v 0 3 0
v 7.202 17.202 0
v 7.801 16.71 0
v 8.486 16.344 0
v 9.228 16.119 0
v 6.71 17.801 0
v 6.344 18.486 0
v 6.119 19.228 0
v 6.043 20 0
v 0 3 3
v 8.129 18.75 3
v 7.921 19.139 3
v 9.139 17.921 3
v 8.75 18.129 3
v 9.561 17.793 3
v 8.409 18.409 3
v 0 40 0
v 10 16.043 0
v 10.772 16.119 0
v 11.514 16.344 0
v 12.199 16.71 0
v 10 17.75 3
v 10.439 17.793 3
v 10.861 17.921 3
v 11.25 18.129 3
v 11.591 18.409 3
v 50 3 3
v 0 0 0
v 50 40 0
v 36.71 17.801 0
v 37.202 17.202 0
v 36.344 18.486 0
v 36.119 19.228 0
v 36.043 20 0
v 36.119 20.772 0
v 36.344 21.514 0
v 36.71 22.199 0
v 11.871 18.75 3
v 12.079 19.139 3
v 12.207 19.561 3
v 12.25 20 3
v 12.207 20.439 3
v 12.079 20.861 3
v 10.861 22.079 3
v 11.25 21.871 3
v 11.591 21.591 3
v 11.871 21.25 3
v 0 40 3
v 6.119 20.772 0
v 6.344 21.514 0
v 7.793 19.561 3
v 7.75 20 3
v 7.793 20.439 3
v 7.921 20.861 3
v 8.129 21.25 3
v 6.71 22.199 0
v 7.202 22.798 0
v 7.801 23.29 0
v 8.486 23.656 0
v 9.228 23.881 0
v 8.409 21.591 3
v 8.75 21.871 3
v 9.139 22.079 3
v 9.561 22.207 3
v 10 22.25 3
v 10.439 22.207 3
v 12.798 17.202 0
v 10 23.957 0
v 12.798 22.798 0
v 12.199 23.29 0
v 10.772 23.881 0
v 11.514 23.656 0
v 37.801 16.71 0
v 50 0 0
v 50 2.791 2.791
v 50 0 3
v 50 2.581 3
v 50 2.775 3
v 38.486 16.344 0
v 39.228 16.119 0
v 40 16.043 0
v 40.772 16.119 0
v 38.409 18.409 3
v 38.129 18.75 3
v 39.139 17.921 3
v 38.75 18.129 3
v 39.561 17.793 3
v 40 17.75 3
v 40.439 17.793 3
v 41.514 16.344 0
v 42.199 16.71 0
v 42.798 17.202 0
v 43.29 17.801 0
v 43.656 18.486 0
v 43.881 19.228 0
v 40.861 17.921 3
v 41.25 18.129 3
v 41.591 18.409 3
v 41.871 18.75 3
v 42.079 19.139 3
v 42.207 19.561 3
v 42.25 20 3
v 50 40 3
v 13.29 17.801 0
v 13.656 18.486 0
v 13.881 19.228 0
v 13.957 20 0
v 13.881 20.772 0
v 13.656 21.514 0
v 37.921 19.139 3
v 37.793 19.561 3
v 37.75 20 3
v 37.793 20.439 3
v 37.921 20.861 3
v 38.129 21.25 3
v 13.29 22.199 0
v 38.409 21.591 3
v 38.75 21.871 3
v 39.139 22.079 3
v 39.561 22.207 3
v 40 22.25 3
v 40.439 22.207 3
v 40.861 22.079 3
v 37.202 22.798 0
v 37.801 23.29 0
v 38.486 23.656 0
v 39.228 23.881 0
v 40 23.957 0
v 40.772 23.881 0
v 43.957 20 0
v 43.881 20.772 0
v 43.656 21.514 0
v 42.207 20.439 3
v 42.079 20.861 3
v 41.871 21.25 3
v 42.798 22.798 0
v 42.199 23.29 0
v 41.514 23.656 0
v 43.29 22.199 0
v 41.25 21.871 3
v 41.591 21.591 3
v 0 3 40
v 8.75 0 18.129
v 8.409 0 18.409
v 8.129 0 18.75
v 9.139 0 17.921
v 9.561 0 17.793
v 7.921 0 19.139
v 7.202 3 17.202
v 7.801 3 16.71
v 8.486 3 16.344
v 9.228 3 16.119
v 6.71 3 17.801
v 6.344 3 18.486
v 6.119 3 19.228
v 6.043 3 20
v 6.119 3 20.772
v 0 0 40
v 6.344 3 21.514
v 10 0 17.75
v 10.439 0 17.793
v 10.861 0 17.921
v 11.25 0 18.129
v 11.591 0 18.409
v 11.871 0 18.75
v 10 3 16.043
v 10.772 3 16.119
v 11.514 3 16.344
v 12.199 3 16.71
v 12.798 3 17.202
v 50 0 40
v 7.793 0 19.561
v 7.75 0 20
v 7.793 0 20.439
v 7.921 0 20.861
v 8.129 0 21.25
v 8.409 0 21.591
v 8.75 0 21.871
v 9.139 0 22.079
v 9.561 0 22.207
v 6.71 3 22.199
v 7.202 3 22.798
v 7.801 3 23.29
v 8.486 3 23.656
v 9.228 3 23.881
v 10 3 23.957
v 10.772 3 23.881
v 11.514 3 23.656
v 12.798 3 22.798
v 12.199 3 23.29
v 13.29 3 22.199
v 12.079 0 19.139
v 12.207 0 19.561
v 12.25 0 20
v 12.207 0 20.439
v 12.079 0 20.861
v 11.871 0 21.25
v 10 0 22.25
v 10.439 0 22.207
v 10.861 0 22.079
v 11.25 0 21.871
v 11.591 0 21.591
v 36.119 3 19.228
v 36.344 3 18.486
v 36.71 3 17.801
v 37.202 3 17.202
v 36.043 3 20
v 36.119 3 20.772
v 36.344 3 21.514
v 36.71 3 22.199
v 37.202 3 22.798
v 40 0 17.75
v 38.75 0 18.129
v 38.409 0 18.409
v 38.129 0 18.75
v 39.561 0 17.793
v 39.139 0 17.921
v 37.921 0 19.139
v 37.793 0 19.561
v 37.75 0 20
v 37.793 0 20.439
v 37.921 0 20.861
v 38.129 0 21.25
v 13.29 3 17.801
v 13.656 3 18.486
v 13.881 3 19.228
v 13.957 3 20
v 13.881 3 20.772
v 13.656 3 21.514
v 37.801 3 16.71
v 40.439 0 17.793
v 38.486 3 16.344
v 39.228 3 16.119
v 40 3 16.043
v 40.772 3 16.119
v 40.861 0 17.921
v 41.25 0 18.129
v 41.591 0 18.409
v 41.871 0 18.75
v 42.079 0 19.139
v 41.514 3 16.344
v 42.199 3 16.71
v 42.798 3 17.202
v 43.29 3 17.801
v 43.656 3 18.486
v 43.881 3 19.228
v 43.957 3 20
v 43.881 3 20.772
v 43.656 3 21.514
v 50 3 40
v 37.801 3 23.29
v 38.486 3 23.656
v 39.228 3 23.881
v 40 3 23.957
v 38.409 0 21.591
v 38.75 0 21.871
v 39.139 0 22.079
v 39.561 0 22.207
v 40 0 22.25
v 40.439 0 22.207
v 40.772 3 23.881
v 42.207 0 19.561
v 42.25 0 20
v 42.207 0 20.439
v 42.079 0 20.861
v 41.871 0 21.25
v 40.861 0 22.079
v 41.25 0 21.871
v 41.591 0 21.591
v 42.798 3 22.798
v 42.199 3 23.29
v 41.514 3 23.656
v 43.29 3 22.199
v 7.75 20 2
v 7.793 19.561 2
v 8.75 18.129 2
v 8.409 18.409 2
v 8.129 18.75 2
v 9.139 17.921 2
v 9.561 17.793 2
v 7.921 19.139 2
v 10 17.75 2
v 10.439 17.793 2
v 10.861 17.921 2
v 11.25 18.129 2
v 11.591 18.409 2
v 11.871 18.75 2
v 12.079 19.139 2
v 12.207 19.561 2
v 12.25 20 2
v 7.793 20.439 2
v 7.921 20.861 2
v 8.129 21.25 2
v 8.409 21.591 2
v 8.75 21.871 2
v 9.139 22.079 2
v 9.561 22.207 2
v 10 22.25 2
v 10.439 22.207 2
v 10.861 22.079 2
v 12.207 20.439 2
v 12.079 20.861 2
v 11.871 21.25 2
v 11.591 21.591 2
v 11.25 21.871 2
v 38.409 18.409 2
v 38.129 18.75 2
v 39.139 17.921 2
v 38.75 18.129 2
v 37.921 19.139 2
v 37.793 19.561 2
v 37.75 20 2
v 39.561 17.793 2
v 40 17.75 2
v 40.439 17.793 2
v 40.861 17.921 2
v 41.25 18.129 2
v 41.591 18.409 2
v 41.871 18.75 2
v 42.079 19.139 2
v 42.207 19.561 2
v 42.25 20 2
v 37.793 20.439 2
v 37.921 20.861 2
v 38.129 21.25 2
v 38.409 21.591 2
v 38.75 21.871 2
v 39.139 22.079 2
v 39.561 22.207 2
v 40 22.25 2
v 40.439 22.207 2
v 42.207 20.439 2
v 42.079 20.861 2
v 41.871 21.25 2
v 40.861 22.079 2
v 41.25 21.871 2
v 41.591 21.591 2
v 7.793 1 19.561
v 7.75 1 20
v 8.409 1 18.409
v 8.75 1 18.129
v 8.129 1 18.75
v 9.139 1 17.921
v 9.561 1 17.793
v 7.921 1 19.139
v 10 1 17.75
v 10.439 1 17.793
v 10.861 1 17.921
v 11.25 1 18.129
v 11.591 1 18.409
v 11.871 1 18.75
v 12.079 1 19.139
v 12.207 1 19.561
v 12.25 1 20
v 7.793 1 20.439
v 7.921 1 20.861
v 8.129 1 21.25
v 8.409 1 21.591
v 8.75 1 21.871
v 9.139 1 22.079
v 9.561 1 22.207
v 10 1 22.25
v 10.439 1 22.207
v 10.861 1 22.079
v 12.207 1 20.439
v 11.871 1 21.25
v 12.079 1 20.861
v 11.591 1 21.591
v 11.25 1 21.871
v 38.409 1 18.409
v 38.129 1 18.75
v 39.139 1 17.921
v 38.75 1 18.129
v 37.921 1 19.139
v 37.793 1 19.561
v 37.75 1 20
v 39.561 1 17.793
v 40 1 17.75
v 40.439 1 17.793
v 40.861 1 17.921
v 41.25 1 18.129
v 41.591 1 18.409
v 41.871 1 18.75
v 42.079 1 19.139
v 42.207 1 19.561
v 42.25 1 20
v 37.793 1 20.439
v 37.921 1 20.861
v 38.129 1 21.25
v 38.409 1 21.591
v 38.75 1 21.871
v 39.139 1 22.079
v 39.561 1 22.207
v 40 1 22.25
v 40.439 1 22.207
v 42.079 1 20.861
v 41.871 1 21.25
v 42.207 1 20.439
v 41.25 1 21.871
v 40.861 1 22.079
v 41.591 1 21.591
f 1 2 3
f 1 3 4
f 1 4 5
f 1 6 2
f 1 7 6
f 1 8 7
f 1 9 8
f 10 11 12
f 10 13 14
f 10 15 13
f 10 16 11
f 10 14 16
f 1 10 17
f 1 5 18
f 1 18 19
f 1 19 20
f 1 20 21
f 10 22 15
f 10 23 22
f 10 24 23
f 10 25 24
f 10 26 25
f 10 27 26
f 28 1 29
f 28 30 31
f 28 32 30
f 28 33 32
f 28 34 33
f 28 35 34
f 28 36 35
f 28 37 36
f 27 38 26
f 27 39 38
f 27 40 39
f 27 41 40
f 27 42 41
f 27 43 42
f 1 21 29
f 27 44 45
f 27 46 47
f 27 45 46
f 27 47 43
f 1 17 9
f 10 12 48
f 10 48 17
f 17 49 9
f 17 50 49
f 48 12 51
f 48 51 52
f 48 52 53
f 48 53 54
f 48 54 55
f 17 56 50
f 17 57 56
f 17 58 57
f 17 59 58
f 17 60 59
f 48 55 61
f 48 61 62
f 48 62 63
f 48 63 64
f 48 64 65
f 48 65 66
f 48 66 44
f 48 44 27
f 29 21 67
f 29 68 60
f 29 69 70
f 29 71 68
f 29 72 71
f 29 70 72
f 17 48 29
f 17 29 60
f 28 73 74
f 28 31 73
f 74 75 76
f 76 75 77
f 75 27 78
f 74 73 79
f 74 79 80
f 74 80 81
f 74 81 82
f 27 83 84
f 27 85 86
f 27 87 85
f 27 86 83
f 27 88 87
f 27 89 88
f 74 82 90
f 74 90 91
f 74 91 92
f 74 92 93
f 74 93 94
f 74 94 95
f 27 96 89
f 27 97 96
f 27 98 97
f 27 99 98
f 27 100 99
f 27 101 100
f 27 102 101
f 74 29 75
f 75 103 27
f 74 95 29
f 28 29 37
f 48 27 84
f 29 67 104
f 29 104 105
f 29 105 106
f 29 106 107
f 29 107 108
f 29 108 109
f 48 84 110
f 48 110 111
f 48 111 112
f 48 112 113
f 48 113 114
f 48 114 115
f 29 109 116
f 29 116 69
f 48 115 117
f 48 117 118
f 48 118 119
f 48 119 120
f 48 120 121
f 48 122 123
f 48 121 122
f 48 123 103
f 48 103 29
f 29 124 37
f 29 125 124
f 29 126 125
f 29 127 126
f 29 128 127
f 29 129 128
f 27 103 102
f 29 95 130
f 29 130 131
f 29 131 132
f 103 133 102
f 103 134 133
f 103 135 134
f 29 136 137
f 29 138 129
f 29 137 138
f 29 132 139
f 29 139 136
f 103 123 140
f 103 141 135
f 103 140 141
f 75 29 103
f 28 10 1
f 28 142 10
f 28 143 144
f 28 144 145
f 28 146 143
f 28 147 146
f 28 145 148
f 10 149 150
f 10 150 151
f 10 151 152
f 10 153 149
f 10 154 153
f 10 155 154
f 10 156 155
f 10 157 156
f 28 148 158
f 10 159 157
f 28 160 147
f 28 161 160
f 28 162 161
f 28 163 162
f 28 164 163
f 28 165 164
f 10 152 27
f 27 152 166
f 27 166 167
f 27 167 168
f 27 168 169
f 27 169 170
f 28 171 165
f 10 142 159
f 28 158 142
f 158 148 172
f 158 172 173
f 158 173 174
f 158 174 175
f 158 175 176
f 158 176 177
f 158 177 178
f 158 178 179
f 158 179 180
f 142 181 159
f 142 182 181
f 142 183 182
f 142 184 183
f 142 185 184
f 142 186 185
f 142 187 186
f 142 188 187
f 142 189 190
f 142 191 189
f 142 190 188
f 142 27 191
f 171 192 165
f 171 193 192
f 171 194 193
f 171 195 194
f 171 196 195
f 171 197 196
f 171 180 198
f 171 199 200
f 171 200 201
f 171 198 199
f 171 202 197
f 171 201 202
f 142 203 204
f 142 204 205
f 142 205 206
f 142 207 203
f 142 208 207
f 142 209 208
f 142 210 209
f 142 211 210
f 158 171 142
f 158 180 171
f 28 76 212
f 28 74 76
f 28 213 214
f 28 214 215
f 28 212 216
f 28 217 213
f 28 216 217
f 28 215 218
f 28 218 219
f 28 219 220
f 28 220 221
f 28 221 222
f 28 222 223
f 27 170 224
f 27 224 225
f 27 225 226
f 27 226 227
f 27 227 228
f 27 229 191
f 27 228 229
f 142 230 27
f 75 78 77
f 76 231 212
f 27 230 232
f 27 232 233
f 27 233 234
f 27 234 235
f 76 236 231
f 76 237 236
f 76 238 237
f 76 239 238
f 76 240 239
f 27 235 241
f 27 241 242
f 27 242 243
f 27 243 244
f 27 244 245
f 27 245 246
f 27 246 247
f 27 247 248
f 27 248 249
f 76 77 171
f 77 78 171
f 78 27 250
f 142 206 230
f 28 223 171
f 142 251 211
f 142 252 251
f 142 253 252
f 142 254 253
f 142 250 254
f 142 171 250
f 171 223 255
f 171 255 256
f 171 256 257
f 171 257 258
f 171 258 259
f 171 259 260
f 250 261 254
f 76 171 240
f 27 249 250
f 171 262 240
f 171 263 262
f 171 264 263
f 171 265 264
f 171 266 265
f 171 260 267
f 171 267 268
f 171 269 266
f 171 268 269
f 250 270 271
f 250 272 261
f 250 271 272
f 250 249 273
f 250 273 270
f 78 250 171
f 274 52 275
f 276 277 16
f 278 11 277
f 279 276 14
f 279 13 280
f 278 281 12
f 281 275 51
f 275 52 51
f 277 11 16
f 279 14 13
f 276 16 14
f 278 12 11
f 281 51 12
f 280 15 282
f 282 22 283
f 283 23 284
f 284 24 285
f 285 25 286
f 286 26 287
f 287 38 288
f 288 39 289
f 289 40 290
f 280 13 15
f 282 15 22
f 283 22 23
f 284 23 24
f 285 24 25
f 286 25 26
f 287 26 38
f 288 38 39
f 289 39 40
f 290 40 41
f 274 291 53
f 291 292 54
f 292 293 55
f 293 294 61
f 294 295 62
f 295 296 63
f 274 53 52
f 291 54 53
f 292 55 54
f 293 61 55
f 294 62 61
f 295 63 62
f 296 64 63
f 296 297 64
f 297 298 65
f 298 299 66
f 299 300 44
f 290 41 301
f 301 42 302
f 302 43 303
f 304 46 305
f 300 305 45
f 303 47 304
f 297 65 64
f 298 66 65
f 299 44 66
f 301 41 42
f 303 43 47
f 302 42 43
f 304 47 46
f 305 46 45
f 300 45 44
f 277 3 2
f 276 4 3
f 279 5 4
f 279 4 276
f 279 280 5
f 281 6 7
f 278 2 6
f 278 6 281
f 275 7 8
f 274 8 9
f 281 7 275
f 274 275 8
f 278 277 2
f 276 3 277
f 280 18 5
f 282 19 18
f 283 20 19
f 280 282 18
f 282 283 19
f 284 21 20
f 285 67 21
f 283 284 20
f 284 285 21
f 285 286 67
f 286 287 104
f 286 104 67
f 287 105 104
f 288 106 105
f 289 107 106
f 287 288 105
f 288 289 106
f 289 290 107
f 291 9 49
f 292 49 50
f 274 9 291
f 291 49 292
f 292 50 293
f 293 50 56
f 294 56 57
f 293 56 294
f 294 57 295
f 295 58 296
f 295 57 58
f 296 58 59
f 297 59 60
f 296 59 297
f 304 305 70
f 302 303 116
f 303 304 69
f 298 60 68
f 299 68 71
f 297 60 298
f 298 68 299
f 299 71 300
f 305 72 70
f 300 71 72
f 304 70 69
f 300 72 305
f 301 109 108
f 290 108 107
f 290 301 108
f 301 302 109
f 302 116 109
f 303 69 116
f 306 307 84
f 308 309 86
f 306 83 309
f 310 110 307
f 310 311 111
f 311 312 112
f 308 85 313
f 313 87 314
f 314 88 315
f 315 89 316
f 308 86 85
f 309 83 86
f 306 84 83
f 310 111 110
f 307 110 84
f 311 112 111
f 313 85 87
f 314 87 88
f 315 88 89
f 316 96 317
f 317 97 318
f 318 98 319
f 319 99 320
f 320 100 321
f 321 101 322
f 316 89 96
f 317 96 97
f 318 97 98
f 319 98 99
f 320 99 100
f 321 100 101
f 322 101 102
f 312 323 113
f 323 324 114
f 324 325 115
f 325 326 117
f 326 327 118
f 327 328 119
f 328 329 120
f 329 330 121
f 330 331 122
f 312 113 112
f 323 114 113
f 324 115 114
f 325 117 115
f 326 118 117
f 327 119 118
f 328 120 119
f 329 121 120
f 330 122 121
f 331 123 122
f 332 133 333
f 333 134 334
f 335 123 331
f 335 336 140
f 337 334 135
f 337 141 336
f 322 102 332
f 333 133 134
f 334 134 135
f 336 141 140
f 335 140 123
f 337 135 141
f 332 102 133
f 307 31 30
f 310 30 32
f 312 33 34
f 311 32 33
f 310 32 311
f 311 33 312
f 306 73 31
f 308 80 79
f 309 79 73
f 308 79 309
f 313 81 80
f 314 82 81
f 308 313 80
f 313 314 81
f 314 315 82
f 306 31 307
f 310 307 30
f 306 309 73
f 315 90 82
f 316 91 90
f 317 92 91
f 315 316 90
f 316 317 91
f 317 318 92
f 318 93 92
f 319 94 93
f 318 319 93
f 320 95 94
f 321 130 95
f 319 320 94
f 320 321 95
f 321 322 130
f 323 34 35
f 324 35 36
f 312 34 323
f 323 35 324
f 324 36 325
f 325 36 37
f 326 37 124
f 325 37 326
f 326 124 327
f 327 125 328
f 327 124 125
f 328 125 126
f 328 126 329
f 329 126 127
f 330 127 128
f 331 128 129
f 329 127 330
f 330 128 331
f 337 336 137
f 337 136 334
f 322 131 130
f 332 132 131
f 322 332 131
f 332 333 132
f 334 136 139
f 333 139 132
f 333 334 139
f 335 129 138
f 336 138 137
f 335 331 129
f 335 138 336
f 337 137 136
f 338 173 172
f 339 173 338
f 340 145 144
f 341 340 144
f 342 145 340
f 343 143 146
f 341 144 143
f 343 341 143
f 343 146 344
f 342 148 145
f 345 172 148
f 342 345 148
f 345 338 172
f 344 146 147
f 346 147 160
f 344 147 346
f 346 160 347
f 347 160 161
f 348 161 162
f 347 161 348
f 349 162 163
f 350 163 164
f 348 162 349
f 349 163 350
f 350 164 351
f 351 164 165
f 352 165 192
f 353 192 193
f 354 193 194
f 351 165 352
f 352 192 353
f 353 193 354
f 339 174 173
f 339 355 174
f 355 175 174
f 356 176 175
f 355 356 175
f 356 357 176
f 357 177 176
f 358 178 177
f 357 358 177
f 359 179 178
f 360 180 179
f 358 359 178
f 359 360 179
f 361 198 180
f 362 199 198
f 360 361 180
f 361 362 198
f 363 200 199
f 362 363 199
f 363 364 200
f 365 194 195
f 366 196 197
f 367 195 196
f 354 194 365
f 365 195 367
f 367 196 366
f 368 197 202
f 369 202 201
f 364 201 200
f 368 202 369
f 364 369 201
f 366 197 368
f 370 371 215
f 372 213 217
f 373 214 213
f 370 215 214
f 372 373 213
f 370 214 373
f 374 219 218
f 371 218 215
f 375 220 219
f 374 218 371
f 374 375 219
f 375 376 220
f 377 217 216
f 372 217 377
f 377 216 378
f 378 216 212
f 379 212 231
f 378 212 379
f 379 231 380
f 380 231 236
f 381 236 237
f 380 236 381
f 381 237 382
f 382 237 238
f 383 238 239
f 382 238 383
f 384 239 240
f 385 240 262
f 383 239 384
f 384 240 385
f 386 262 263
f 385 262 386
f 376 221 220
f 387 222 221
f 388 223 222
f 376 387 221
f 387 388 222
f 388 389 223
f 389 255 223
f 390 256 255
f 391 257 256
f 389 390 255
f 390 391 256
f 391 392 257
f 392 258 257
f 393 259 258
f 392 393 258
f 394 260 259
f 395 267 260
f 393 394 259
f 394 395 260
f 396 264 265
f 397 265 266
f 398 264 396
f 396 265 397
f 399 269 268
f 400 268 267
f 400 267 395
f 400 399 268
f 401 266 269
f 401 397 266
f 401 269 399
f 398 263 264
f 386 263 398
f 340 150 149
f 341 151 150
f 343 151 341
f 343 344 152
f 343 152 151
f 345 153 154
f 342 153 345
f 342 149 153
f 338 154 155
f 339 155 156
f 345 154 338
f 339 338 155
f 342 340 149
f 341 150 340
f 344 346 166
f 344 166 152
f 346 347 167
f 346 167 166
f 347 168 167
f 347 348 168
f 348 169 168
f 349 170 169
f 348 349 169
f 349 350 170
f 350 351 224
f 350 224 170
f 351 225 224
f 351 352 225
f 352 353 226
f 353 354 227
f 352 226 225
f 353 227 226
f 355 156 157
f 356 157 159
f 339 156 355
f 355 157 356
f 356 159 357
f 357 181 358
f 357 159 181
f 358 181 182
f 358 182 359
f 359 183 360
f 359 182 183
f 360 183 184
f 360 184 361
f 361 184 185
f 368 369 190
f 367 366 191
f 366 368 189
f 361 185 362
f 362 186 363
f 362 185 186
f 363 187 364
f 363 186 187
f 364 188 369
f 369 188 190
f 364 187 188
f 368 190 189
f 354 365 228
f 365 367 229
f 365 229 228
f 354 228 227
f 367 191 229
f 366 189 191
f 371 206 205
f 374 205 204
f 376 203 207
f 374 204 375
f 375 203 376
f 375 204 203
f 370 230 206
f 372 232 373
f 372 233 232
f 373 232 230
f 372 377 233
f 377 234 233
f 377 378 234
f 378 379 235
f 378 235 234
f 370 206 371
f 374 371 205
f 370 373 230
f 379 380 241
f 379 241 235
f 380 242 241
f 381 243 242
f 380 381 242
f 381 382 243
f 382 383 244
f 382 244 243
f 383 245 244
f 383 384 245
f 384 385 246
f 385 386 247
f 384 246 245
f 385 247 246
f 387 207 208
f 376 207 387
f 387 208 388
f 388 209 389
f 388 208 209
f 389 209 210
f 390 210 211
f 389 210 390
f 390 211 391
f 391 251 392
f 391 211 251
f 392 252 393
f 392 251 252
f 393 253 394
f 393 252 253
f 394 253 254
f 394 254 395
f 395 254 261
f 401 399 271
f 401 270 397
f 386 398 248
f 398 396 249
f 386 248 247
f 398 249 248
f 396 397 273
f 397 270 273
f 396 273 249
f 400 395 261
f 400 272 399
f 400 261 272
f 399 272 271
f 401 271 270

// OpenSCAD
// L-bracket parameters
width = 50;
depth = 40;
height = 40;
thickness = 3;

// Countersunk hole parameters
hole_dia = 4.5;
countersink_dia = 8;
countersink_depth = 2;
hole_offset = 10;

// Main L-bracket
difference() {
    union() {
        // Horizontal flange
        cube([width, depth, thickness]);
        
        // Vertical flange
        cube([width, thickness, height]);
    }
    
    // Horizontal flange holes
    for (x = [hole_offset, width - hole_offset]) {
        translate([x, depth/2, -0.05]) {
            // Through hole
            cylinder(h = thickness + 0.1, d = hole_dia, $fn = 32);
            // Countersink (from bottom)
            cylinder(h = countersink_depth + 0.05, d1 = countersink_dia, d2 = hole_dia, $fn = 32);
        }
    }
    
    // Vertical flange holes
    for (x = [hole_offset, width - hole_offset]) {
        translate([x, thickness + 0.05, height/2]) {
            rotate([90, 0, 0]) {
                // Through hole
                cylinder(h = thickness + 0.1, d = hole_dia, $fn = 32);
                // Countersink (from front)
                cylinder(h = countersink_depth + 0.05, d1 = countersink_dia, d2 = hole_dia, $fn = 32);
            }
        }
    }
}
